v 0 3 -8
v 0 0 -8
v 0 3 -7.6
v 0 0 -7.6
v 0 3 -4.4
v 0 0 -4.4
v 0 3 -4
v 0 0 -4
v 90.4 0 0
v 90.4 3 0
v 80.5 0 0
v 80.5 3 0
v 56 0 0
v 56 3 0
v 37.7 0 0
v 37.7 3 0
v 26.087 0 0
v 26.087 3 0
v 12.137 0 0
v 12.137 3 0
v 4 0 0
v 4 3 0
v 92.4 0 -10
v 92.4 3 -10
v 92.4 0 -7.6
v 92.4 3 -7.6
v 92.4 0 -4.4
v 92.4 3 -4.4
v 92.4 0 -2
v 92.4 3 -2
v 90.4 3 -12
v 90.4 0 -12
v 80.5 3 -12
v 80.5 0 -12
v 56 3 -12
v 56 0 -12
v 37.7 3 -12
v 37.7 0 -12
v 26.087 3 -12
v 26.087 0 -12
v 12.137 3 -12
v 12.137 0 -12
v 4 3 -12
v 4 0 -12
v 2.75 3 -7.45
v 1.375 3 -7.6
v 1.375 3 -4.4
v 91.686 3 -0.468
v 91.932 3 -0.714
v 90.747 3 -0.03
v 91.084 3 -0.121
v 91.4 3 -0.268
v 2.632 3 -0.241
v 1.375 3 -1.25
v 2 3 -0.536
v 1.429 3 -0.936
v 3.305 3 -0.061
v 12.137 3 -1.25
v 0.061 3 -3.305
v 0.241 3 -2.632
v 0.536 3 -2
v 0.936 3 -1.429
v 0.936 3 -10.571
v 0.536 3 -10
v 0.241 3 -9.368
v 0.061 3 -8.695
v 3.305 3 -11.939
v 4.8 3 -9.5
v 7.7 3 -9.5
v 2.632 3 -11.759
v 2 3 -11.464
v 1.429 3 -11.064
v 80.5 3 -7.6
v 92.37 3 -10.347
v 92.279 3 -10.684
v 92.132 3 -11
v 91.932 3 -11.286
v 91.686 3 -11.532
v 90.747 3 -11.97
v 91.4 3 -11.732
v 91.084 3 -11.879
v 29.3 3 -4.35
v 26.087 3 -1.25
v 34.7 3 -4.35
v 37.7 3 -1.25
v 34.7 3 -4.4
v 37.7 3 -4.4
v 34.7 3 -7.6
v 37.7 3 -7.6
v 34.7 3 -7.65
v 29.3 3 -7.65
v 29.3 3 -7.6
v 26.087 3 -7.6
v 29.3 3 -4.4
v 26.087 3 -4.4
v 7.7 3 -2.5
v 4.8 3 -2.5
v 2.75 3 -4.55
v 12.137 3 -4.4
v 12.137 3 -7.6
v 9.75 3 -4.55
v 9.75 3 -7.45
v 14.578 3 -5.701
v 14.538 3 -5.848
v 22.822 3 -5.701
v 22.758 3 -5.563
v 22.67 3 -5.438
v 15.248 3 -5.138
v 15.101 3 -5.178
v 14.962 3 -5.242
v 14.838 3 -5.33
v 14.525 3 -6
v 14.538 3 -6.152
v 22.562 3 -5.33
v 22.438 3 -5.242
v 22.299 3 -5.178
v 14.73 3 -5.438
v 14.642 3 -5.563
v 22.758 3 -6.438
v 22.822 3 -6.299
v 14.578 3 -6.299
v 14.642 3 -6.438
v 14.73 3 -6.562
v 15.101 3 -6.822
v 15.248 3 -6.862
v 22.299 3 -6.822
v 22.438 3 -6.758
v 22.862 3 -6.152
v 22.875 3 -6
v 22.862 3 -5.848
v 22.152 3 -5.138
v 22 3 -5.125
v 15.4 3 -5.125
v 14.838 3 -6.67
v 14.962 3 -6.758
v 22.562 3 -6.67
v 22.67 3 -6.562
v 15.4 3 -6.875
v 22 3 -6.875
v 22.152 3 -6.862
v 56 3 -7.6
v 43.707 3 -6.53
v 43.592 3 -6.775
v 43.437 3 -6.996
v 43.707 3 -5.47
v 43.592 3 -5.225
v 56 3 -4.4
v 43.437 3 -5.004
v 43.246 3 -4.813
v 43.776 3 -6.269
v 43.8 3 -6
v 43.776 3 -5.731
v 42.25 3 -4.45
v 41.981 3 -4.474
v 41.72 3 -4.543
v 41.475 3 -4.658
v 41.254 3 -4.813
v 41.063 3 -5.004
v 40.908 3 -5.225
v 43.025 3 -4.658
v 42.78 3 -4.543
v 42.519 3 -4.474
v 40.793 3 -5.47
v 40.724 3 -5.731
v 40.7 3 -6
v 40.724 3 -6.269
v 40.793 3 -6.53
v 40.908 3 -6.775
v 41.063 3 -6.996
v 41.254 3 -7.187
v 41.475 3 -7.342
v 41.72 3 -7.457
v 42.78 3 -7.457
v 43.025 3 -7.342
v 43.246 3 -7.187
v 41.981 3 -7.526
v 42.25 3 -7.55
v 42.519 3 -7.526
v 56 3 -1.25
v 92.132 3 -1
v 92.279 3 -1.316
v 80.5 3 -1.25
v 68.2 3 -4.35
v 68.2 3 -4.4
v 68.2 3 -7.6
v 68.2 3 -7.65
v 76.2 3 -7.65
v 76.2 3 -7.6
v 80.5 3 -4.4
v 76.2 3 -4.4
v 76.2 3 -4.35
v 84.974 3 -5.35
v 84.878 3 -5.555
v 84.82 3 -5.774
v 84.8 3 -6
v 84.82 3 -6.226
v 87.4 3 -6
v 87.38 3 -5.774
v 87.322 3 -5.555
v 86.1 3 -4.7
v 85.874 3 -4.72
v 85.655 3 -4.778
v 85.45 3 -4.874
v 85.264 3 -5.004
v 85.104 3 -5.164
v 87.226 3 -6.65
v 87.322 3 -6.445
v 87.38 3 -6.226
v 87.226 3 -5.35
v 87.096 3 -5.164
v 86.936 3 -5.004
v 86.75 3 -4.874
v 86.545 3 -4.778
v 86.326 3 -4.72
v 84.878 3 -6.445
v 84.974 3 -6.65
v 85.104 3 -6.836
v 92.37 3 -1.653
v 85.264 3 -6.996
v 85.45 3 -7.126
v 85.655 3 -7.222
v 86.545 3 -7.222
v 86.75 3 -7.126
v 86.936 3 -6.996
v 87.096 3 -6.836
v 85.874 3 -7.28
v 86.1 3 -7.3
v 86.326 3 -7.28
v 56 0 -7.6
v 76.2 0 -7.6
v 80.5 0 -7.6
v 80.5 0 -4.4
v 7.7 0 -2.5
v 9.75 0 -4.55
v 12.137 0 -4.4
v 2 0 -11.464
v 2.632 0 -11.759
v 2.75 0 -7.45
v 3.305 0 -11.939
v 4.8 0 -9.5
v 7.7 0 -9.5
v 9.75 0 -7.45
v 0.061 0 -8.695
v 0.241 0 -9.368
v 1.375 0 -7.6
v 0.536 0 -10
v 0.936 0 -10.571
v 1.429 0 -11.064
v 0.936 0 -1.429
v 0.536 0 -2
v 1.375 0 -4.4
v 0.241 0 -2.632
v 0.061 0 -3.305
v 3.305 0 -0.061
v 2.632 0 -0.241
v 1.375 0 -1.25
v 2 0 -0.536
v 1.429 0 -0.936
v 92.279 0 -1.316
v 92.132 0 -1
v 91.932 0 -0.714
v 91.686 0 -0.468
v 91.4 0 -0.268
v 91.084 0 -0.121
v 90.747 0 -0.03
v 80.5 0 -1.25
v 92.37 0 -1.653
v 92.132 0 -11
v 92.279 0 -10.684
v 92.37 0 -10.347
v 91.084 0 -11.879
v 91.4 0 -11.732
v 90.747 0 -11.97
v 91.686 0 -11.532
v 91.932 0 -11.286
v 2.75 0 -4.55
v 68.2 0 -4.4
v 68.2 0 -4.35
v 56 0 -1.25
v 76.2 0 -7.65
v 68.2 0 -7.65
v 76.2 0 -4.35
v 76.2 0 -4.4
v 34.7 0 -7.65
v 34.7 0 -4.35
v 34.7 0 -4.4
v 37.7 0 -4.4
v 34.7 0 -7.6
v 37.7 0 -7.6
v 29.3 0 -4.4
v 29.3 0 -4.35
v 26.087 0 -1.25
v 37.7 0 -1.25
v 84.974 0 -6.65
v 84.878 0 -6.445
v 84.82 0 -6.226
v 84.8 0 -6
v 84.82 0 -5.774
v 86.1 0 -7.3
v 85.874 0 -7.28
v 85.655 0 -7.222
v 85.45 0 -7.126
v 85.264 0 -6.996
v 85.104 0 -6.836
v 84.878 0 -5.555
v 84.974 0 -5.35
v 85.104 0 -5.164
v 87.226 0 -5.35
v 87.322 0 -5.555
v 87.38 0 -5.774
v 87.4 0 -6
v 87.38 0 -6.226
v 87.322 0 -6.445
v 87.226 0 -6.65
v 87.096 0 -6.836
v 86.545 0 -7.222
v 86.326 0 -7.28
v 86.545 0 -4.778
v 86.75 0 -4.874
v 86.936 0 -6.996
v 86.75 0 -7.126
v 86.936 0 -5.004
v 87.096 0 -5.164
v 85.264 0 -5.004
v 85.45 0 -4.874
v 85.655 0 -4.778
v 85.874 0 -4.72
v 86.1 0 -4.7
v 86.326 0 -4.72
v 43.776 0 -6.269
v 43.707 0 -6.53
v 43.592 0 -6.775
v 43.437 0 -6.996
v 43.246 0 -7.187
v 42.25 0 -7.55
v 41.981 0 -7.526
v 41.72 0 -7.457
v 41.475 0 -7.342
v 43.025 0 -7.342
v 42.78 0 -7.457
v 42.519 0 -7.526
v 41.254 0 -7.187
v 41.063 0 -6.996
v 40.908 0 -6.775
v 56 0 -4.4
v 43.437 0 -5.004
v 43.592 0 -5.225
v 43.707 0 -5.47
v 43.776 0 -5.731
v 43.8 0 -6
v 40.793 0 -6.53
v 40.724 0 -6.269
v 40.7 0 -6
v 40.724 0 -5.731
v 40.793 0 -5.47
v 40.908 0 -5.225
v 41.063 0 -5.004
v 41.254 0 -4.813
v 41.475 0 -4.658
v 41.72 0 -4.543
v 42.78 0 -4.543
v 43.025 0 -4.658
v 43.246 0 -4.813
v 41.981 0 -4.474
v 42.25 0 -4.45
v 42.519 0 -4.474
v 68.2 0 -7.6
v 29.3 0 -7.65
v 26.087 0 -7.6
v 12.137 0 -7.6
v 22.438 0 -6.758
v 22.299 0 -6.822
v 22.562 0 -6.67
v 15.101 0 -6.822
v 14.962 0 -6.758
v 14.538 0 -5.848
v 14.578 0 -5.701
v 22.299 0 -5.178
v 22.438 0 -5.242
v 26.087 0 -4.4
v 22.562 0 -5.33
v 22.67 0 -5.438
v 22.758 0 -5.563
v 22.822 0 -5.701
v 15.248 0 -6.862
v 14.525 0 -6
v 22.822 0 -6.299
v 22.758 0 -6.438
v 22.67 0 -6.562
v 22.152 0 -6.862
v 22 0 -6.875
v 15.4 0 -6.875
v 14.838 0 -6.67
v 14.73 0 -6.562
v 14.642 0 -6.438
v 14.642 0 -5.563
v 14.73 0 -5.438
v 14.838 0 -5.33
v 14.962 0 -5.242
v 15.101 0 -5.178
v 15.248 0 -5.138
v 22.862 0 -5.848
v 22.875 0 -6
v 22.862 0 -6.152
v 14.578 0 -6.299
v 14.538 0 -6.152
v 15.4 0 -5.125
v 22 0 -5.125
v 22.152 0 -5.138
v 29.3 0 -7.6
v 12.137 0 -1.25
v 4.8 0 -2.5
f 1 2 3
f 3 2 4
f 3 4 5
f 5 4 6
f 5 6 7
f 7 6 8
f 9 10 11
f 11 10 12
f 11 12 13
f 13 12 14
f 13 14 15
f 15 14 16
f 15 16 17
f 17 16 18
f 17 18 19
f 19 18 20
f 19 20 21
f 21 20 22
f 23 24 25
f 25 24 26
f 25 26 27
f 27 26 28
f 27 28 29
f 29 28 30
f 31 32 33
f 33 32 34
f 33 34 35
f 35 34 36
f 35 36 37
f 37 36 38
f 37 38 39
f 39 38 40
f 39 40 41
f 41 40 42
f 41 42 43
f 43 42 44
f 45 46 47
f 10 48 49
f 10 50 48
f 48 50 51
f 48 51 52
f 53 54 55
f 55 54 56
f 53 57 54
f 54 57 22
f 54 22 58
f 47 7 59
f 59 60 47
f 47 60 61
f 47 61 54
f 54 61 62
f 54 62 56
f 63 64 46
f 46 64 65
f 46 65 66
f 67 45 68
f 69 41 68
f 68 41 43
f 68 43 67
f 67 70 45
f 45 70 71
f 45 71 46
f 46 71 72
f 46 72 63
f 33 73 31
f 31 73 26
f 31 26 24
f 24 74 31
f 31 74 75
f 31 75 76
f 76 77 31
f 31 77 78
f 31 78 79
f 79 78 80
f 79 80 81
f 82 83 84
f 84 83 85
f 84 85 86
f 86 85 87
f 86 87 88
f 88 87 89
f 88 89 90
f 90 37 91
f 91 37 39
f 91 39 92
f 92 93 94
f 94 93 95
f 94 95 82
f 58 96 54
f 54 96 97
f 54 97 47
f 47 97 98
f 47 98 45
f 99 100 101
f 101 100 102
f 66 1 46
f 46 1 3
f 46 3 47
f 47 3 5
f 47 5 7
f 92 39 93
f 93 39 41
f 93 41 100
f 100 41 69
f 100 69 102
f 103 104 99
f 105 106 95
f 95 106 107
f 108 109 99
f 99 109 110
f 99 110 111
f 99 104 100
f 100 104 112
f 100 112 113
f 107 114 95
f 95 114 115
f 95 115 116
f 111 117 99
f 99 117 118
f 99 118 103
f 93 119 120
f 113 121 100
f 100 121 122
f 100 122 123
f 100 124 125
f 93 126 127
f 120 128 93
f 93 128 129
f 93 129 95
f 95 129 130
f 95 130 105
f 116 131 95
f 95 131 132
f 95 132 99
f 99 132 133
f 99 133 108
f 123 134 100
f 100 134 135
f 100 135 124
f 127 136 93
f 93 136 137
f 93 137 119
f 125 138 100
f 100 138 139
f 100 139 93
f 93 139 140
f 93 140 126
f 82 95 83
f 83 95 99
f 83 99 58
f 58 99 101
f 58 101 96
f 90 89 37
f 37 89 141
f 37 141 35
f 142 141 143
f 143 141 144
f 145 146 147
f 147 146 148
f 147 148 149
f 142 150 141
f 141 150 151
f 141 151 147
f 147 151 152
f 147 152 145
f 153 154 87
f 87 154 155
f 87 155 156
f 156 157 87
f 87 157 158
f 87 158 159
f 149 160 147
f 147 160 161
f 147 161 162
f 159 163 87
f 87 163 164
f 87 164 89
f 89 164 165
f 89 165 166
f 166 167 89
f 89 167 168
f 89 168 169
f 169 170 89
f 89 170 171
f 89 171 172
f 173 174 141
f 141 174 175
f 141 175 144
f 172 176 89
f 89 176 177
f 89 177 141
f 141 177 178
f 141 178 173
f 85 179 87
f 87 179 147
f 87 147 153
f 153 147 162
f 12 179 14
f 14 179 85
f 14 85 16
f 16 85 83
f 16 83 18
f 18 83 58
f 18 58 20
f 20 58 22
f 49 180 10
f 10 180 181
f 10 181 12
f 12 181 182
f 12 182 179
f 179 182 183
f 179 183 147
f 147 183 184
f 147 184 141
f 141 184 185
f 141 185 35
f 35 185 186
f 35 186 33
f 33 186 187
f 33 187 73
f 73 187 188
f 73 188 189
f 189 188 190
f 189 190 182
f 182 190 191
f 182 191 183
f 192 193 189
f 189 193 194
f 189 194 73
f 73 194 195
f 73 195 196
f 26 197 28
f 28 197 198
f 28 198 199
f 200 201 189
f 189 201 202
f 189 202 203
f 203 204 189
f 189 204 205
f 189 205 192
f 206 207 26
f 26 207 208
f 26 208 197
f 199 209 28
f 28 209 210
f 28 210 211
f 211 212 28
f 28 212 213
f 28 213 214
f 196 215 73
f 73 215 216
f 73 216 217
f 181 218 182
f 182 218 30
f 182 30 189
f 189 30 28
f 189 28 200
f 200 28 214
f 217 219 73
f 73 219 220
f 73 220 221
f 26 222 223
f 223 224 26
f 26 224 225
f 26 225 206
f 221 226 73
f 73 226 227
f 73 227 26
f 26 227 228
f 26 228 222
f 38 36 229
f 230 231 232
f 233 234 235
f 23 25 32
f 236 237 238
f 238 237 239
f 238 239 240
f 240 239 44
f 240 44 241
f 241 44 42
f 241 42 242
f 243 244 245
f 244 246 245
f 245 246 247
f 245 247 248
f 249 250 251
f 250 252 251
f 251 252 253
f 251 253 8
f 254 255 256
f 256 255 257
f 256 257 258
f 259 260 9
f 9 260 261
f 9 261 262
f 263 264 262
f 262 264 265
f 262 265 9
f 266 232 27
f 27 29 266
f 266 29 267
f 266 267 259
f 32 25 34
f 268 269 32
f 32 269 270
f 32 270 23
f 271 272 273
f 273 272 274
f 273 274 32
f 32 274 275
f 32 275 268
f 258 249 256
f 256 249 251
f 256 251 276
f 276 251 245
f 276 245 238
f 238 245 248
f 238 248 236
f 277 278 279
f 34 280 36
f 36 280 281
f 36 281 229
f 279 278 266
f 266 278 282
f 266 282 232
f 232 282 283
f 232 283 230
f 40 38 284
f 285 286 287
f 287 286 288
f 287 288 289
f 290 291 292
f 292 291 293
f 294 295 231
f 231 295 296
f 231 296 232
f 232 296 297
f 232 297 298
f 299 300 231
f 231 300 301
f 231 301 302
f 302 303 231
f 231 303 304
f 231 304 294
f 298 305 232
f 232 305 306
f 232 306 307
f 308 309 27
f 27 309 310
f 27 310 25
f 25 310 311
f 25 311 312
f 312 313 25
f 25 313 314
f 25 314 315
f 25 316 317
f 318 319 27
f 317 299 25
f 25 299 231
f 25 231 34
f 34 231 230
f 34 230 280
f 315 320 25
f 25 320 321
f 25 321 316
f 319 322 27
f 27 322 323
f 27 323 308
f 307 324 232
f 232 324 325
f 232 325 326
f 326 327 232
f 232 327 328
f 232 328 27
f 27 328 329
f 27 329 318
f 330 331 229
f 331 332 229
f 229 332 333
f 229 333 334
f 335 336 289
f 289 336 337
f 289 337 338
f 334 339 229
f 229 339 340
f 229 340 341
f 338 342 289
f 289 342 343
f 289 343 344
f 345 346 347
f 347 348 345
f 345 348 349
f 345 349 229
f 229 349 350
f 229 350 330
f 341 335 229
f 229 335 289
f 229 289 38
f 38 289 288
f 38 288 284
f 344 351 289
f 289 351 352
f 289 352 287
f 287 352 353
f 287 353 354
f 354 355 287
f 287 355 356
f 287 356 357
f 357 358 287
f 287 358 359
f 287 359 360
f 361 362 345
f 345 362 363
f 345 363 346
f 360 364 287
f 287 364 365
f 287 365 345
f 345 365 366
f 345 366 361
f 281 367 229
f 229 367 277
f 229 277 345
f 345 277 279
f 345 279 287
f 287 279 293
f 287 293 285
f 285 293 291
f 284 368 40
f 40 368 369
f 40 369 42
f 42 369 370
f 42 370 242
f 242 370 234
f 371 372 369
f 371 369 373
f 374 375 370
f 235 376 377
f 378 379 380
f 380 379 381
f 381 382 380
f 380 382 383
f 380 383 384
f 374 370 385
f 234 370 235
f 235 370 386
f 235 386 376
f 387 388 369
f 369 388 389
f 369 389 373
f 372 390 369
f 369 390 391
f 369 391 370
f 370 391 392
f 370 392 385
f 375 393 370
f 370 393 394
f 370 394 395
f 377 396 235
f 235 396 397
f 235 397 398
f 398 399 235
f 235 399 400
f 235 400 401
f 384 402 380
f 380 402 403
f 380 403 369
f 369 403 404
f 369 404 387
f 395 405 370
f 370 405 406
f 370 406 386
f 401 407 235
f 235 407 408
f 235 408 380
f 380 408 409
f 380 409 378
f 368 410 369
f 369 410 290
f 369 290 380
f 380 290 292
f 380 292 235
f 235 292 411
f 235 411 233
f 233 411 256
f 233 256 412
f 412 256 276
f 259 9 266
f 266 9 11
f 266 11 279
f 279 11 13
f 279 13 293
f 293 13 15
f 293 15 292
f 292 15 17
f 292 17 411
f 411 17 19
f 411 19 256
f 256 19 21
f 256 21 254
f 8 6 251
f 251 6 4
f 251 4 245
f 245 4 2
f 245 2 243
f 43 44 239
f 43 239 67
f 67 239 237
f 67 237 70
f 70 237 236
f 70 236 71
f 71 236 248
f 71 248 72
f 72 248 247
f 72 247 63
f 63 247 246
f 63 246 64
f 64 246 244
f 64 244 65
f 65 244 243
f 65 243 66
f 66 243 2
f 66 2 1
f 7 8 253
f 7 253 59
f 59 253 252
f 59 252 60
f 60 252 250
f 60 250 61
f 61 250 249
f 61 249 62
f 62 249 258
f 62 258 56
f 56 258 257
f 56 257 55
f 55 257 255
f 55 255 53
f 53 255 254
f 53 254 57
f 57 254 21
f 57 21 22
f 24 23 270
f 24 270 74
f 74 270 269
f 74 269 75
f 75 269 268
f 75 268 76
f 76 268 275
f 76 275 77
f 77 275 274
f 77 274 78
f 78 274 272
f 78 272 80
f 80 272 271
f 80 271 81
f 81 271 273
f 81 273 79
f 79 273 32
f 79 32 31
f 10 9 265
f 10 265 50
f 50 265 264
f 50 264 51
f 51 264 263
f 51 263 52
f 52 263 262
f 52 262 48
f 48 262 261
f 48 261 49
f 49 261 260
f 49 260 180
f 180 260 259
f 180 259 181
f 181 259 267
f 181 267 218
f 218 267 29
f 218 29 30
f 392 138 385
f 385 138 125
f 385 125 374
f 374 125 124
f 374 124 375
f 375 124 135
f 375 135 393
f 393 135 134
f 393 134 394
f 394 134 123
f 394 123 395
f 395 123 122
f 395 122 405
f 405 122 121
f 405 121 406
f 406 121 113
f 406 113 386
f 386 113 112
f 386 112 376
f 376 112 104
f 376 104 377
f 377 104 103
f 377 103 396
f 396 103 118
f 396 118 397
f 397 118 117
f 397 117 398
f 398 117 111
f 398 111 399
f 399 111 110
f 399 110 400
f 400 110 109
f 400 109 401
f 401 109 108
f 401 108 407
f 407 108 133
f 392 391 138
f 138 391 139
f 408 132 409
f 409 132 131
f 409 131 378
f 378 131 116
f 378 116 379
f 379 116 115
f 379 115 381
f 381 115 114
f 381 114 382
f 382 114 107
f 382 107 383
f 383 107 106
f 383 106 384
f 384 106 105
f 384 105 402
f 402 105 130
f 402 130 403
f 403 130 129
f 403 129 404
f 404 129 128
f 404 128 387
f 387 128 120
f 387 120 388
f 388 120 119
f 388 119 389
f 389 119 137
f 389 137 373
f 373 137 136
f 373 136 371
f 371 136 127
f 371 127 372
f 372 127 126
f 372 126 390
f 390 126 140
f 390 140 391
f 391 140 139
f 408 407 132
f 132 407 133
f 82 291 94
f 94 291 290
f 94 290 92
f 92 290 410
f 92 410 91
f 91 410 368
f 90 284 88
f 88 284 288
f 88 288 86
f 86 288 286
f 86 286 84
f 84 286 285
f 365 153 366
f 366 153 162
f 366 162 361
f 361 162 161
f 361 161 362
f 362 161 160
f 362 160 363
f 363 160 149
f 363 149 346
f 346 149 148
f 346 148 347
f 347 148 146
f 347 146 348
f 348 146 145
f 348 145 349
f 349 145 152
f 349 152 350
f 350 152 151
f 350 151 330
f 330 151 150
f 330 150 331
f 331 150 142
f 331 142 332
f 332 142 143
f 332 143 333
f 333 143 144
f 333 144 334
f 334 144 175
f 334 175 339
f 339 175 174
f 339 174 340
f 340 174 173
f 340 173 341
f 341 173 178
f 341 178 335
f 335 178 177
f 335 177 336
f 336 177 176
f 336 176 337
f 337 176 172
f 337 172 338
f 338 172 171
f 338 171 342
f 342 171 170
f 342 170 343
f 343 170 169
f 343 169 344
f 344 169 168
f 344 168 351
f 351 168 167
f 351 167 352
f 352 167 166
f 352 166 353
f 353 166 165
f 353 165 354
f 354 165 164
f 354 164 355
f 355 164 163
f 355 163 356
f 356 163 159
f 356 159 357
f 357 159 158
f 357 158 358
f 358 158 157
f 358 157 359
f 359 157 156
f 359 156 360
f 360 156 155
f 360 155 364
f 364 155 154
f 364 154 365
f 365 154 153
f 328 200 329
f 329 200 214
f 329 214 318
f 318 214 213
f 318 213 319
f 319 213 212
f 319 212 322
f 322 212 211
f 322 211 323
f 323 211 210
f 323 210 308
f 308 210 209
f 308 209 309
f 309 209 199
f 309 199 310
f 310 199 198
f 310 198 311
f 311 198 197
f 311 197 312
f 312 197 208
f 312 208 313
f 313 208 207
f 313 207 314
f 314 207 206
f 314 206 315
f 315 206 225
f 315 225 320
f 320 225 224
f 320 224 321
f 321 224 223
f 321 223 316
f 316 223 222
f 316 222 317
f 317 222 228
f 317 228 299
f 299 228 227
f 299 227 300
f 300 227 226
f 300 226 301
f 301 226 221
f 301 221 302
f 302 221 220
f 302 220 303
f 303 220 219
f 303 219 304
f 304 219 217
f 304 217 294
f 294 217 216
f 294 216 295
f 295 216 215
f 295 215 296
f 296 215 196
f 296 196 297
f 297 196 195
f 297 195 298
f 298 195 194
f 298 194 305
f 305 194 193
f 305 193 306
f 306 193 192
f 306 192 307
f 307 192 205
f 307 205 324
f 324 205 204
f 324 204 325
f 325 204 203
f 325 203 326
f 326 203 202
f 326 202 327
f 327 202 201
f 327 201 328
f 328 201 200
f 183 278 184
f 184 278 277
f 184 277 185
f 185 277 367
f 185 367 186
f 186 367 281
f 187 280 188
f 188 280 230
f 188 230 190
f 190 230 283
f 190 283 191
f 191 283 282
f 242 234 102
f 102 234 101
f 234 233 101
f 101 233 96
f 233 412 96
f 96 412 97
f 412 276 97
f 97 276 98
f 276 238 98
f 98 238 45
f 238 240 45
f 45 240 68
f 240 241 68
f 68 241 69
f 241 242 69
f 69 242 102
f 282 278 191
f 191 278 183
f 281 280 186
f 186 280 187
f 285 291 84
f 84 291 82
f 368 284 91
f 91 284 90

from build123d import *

# Parameters (mm, degrees)
SKETCH2_W           = 92.4
SKETCH2_H           = 12
BOSS_EXTRUDE1_DEPTH = 3
FILLET1_R           = 4
FILLET2_R           = 2
SKETCH3_R           = 1.55
SKETCH3_R_2         = 1.3
SKETCH3_W           = 5.4
SKETCH3_H           = 3
SKETCH3_W_2         = 8
CUT_EXTRUDE1_DEPTH  = 4
SKETCH4_W           = 5.4
SKETCH4_H           = 0.15
SKETCH4_W_2         = 8
CUT_EXTRUDE2_DEPTH  = 4


with BuildPart() as part:
    # Sketch2 → Boss-Extrude1 (new body)
    with BuildSketch(Plane(origin=(0, 0, 0), x_dir=(1, 0, 0), z_dir=(0, 1, 0))):
        with Locations((46.2, 6)):
            Rectangle(SKETCH2_W, SKETCH2_H)
    extrude(amount=BOSS_EXTRUDE1_DEPTH)

    # Fillet1
    fillet1_edges = [part.edges().sort_by_distance(p)[0] for p in [
        (0, 1.5, -12),
        (0, 1.5, 0),
    ]]
    fillet(fillet1_edges, radius=FILLET1_R)

    # Fillet2
    fillet2_edges = [part.edges().sort_by_distance(p)[0] for p in [
        (92.4, 1.5, -12),
        (92.4, 1.5, 0),
    ]]
    fillet(fillet2_edges, radius=FILLET2_R)

    # Sketch3 → Cut-Extrude1 (cut, through all)
    with BuildSketch(Plane(origin=(0, 3, 0), x_dir=(1, 0, 0), z_dir=(0, 1, 0))):
        with Locations((42.25, 6)):
            Circle(SKETCH3_R)
        with Locations((86.1, 6)):
            Circle(SKETCH3_R_2)
        Polygon((9.75, 7.449747468), (7.699747468, 9.5), (4.800252532, 9.5), (2.75, 7.449747468), (2.75, 4.550252532), (4.800252532, 2.5), (7.699747468, 2.5), (9.75, 4.550252532), align=None)
        with BuildLine():
            Line((15.4, 6.875), (22, 6.875))
            ThreePointArc((22, 6.875), (22.875, 6), (22, 5.125))
            Line((22, 5.125), (15.4, 5.125))
            ThreePointArc((15.4, 5.125), (14.525, 6), (15.4, 6.875))
        make_face()
        with Locations((32, 6)):
            Rectangle(SKETCH3_W, SKETCH3_H)
        with Locations((72.2, 6)):
            Rectangle(SKETCH3_W_2, SKETCH3_H)
    extrude(amount=-CUT_EXTRUDE1_DEPTH, mode=Mode.SUBTRACT)

    # Sketch4 → Cut-Extrude2 (cut, through all)
    with BuildSketch(Plane(origin=(0, 3, 0), x_dir=(1, 0, 0), z_dir=(0, 1, 0))):
        with Locations((32, 7.575)):
            Rectangle(SKETCH4_W, SKETCH4_H)
        with Locations((32, 4.425)):
            Rectangle(SKETCH4_W, SKETCH4_H)
        with Locations((72.2, 7.575)):
            Rectangle(SKETCH4_W_2, SKETCH4_H)
        with Locations((72.2, 4.425)):
            Rectangle(SKETCH4_W_2, SKETCH4_H)
    extrude(amount=-CUT_EXTRUDE2_DEPTH, mode=Mode.SUBTRACT)


solid = part.part
